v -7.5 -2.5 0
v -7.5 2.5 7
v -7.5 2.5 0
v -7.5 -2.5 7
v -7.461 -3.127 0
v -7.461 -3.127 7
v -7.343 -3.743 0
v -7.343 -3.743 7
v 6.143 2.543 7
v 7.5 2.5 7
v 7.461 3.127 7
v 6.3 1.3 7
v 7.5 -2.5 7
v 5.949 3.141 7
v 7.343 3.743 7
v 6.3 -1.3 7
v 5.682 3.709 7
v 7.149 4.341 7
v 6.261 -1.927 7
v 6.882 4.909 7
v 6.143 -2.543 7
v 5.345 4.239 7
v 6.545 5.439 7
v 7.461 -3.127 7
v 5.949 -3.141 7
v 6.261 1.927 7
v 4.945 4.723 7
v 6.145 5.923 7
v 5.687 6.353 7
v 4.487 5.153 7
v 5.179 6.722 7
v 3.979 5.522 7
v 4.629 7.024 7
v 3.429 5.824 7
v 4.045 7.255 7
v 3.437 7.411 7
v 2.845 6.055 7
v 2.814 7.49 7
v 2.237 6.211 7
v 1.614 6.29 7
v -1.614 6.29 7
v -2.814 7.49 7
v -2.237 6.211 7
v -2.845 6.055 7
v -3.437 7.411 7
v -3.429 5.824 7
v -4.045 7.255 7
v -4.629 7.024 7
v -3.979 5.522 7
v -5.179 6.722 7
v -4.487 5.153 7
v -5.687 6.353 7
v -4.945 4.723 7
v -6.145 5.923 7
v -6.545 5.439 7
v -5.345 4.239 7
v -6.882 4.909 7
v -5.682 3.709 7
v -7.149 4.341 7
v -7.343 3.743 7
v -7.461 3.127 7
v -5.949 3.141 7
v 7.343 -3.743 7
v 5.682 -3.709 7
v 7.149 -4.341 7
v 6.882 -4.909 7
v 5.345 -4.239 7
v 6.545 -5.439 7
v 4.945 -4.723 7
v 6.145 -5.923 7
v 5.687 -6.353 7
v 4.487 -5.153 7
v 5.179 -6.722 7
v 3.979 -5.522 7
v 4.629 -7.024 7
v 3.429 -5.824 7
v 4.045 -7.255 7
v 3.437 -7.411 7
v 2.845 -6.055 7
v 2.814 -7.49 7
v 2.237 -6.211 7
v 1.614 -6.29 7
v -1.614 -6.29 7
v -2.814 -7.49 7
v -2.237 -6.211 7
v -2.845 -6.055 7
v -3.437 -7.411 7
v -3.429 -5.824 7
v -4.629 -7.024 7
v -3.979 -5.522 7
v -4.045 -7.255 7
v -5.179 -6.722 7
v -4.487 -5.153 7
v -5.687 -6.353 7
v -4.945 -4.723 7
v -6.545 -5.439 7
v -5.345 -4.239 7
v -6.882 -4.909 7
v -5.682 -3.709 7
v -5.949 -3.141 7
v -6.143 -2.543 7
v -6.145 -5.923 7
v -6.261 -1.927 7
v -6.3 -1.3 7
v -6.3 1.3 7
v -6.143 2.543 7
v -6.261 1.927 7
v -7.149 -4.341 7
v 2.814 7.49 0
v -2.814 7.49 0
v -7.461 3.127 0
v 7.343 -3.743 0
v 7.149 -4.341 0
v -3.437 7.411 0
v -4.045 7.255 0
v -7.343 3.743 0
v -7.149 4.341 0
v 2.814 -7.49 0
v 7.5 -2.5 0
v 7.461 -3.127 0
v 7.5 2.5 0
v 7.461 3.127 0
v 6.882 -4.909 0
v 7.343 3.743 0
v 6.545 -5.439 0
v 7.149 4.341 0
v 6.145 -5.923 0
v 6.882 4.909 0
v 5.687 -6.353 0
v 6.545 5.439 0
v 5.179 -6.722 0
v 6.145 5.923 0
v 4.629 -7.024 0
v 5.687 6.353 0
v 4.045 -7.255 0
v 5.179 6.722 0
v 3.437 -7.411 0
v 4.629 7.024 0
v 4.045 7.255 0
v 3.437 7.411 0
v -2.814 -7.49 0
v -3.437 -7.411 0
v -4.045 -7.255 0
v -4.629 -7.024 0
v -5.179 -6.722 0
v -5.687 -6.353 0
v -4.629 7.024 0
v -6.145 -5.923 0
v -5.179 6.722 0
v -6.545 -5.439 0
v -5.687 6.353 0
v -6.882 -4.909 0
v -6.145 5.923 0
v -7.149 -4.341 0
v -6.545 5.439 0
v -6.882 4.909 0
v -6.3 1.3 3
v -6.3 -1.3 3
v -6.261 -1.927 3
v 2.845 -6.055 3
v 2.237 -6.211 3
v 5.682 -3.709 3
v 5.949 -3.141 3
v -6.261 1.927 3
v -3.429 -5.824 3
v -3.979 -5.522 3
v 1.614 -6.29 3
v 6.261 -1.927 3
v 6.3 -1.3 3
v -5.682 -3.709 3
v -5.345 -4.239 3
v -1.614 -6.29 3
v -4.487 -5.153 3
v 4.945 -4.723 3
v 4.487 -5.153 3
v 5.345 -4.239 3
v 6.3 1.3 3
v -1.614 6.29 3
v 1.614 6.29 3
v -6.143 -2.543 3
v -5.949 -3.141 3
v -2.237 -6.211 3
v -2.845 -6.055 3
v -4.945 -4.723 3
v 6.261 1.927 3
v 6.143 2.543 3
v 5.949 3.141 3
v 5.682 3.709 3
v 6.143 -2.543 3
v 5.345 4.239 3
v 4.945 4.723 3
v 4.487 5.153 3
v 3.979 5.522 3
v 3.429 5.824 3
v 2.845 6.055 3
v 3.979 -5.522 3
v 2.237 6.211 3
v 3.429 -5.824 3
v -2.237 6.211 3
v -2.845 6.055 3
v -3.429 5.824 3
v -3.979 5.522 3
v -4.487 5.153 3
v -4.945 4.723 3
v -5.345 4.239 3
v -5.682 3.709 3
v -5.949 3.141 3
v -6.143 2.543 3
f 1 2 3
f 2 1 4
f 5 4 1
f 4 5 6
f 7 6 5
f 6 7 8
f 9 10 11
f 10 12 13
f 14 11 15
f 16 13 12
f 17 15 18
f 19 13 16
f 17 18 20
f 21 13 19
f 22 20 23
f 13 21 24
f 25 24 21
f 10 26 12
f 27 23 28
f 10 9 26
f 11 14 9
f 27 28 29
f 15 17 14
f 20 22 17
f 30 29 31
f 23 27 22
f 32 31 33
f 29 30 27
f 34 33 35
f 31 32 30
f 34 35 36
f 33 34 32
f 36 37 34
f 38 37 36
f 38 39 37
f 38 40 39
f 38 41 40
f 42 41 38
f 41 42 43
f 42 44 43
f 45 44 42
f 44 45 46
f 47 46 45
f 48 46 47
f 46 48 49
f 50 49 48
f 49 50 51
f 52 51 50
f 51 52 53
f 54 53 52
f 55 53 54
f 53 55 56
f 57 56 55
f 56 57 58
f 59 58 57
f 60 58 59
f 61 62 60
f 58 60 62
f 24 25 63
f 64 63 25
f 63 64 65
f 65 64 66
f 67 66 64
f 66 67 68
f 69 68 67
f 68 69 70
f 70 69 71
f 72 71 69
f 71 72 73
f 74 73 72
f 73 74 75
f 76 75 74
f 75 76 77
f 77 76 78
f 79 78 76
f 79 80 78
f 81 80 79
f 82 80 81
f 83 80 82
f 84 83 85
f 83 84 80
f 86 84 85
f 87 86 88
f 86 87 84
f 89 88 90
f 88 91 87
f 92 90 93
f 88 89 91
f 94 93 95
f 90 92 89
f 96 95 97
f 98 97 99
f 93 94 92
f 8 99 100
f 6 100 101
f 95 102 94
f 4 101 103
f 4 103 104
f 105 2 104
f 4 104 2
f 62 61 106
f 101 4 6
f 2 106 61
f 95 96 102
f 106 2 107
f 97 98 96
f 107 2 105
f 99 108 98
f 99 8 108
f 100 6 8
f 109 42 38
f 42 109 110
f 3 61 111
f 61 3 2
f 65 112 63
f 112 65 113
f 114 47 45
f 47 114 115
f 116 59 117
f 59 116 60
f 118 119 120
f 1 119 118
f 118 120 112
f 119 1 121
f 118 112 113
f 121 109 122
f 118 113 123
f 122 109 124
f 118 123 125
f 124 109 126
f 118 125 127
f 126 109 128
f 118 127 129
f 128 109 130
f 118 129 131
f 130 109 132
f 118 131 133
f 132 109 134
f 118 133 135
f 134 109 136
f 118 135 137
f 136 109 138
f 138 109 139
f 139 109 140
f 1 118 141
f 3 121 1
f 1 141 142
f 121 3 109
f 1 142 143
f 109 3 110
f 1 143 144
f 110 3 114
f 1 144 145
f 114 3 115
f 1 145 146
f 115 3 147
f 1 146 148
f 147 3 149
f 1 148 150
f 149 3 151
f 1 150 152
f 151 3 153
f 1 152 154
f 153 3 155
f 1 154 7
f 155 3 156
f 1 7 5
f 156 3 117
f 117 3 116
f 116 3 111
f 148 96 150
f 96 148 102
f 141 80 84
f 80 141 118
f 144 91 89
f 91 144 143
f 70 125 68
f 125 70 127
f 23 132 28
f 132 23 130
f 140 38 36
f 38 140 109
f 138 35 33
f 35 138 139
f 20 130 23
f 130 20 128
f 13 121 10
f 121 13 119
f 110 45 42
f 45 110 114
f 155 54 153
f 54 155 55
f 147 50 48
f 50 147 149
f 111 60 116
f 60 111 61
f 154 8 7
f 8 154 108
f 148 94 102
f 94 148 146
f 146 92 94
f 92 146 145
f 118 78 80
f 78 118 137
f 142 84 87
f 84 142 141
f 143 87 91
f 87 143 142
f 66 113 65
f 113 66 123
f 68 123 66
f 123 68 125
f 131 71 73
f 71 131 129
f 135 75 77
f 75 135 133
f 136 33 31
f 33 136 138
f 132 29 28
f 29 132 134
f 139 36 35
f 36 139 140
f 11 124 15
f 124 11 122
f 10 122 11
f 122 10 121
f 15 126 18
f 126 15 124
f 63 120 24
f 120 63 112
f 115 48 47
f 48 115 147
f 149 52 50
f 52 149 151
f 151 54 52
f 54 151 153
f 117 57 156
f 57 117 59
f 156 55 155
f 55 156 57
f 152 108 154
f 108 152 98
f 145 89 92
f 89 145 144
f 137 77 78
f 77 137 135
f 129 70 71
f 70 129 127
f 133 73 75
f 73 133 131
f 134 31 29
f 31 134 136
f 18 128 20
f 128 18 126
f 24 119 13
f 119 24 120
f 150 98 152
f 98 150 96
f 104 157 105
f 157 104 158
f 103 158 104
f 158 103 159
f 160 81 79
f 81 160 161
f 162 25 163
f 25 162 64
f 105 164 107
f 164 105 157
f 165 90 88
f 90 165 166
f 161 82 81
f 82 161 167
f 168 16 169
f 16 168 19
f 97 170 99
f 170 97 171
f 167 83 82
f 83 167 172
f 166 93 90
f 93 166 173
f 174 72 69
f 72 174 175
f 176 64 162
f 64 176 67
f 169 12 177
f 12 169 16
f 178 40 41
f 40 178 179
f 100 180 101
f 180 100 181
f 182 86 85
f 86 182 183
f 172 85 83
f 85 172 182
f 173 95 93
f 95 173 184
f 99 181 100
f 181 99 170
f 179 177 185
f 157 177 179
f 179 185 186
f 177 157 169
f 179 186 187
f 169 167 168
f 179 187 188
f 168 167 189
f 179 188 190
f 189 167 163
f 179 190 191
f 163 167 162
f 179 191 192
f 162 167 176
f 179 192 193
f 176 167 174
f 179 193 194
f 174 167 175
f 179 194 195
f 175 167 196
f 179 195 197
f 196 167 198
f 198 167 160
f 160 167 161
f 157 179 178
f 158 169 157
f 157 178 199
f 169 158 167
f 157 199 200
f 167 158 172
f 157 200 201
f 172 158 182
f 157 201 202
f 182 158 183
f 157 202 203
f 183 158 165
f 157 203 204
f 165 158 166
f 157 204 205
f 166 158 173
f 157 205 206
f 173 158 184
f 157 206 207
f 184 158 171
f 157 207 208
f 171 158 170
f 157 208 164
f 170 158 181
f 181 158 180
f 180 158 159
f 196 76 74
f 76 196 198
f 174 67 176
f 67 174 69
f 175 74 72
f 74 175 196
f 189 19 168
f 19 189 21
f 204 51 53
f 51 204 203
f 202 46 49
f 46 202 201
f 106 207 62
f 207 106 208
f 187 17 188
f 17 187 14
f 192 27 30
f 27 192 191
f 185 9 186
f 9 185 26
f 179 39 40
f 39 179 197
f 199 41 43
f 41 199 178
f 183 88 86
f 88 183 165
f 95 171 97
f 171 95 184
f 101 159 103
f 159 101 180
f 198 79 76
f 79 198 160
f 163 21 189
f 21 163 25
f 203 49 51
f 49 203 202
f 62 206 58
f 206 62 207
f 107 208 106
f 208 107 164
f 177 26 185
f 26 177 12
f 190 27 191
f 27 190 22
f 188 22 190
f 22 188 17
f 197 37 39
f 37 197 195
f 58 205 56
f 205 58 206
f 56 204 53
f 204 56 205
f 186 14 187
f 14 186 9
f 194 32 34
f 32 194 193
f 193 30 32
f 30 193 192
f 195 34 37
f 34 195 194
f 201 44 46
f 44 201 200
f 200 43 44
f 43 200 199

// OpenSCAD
$fn = 50;


difference() {
	union() {
		hull() {
			translate(v = [-2.5000000000, 2.5000000000, 0]) {
				cylinder(h = 7, r = 5);
			}
			translate(v = [2.5000000000, 2.5000000000, 0]) {
				cylinder(h = 7, r = 5);
			}
			translate(v = [-2.5000000000, -2.5000000000, 0]) {
				cylinder(h = 7, r = 5);
			}
			translate(v = [2.5000000000, -2.5000000000, 0]) {
				cylinder(h = 7, r = 5);
			}
		}
	}
	union() {
		translate(v = [0, 0, 3]) {
			#hull() {
				translate(v = [-1.3000000000, 1.3000000000, 0]) {
					cylinder(h = 4, r = 5);
				}
				translate(v = [1.3000000000, 1.3000000000, 0]) {
					cylinder(h = 4, r = 5);
				}
				translate(v = [-1.3000000000, -1.3000000000, 0]) {
					cylinder(h = 4, r = 5);
				}
				translate(v = [1.3000000000, -1.3000000000, 0]) {
					cylinder(h = 4, r = 5);
				}
			}
		}
	}
}
